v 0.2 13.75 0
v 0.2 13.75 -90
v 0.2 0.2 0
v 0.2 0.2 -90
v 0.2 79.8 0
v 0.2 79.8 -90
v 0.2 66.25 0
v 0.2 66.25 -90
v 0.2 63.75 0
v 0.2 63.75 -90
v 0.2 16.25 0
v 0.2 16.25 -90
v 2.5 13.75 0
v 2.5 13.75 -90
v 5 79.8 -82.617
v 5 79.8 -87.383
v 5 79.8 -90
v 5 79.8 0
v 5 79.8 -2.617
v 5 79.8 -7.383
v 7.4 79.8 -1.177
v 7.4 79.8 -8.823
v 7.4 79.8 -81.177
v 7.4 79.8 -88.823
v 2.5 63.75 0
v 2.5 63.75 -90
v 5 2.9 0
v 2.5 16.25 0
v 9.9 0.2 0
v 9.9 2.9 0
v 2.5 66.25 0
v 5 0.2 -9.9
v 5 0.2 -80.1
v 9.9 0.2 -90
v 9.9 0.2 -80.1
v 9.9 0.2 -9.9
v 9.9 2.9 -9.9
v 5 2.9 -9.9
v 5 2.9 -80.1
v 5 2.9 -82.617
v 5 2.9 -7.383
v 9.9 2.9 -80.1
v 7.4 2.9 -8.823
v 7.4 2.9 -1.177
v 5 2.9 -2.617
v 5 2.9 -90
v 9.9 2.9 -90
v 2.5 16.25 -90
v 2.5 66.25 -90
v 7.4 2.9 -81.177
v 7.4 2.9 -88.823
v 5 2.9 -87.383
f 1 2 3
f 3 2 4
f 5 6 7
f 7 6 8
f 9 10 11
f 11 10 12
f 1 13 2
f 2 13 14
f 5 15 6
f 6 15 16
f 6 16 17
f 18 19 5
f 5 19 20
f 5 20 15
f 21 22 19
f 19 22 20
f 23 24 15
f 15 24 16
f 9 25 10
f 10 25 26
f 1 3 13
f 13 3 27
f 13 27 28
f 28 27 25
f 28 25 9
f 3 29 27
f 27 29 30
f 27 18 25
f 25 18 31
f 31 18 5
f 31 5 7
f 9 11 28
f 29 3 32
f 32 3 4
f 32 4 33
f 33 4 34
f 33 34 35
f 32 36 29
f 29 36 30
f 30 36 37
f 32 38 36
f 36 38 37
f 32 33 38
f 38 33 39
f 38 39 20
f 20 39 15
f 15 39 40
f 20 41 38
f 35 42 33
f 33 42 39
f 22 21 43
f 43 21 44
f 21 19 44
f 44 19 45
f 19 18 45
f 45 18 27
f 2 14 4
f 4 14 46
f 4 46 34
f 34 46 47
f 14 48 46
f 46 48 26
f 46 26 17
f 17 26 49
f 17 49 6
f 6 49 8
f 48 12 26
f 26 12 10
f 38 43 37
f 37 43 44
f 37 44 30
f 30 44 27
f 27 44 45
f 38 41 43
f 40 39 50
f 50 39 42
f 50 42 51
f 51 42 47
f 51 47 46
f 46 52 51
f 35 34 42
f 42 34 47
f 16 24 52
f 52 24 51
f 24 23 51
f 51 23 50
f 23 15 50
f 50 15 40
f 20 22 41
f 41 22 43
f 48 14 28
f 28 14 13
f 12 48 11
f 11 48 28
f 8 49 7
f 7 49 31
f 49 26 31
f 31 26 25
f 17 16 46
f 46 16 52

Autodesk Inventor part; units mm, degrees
ref_plane "YZ Plane" through (0, 0, 0) normal (1, 0, 0) x (0, 1, 0)
ref_plane "XZ Plane" through (0, 0, 0) normal (0, 1, 0) x (-1, 0, 0)
ref_plane "XY Plane" through (0, 0, 0) normal (0, 0, 1) x (1, 0, 0)
sketch "Sketch1" plane through (0, 0, 0) normal (0, 1, 0) x (-1, 0, 0)
  line L0 (0, 0) -> (0, -90)
  line L1 (0, -90) -> (-5, -90)
  line L2 (-5, -90) -> (-5, -87.5)
  line L3 (-5, -82.5) -> (-5, -7.5)
  line L4 (-5, -7.5) -> (-7.5, -9)
  line L5 (-7.5, -9) -> (-7.5, -1)
  line L6 (-7.5, -1) -> (-5, -2.5)
  line L7 (-5, -2.5) -> (-5, 0)
  line L8 (-5, 0) -> (0, 0)
  line L9 (-5, -7.5) -> (-5, -2.5) construction
  line L10 (-5, -82.5) -> (-5, -87.5) construction
  line L11 (0, -45) -> (-5, -45) construction
  line L12 (-5, -82.5) -> (-7.5, -81)
  line L13 (-7.5, -81) -> (-7.5, -89)
  line L14 (-7.5, -89) -> (-5, -87.5)
  line L15 (0, 0) -> (-10, 0)
  line L16 (-10, 0) -> (-10, -10)
  line L17 (-10, -10) -> (0, -10)
  line L18 (0, -10) -> (0, 0)
  line L19 (0, -90) -> (-10, -90)
  line L20 (-10, -90) -> (-10, -80)
  line L21 (-10, -80) -> (0, -80)
  line L22 (0, -80) -> (0, -90)
  point P0 (-7.5, -5)
  point P1 (-5, -5)
  point P2 (-5, -85)
  point P3 (0, -80)
  point P4 (-5, 0)
  point P5 (0, -10)
  point P6 (-5, -80)
  dimension "d0" = 90
  dimension "d1" = 5
  dimension "d2" = 8
  dimension "d3" = 5
  dimension "d4" = 5
  dimension "d5" = 2.5
  dimension "d6" = 5
  dimension "d9" = 5
  dimension "d10" = 10
  dimension "d11" = 10
  dimension "d12" = 10
  dimension "d13" = 10
extrude "Extrusion1" add sketch "Sketch1" along normal blind 3 contours L0 L17 L3 L4 L5 L6 L7 L8 | L7 L6 L5 L4 L3 L17 L16 L15 | L0 L1 L2 L14 L13 L12 L3 L21 | L3 L12 L13 L14 L2 L19 L20 L21
extrude "Extrusion2" add sketch "Sketch1" along normal blind 80 contours L0 L17 L3 L4 L5 L6 L7 L8 | L0 L21 L3 L17 | L0 L1 L2 L14 L13 L12 L3 L21
sketch "Sketch2" plane through (0, 0, 0) normal (0, 0, 1) x (1, 0, 0)
  line L0 (0, 0) -> (0, 80) projected
  line L1 (0, 13.75) -> (2.5, 13.75)
  line L2 (2.5, 13.75) -> (2.5, 16.25)
  line L3 (2.5, 16.25) -> (0, 16.25)
  line L4 (0, 16.25) -> (0, 13.75)
  line L5 (0, 66.25) -> (2.5, 66.25)
  line L6 (2.5, 66.25) -> (2.5, 63.75)
  line L7 (2.5, 63.75) -> (0, 63.75)
  line L8 (0, 63.75) -> (0, 66.25)
  line L9 (0, 80) -> (5, 80) projected
  line L10 (0, 0) -> (10, 0) projected
  point P0 (2.5, 65)
  point P1 (2.5, 15)
  point P2 (0, 16.25)
  dimension "d18" = 15
  dimension "d19" = 2.5
  dimension "d20" = 2.5
  dimension "d21" = 15
  dimension "d22" = 2.5
extrude "Extrusion3" cut sketch "Sketch2" against normal up to surface (90 mm away)
sketch "Sketch3" plane through (0, 3, 0) normal (0, 1, 0) x (1, 0, 0)
  line L0 (5, 82.5) -> (5, 80) projected
  line L1 (5, 80) -> (10, 80) projected
  line L2 (10, 80) -> (10, 90) projected
  line L3 (10, 90) -> (5, 90) projected
  line L4 (5, 90) -> (5, 87.5) projected
  line L5 (5, 87.5) -> (7.5, 89) projected
  line L6 (7.5, 89) -> (7.5, 81) projected
  line L7 (7.5, 81) -> (5, 82.5) projected
  line L8 (5, 10) -> (5, 7.5) projected
  line L9 (5, 7.5) -> (7.5, 9) projected
  line L10 (7.5, 9) -> (7.5, 1) projected
  line L11 (7.5, 1) -> (5, 2.5) projected
  line L12 (5, 2.5) -> (5, 0) projected
  line L13 (5, 0) -> (10, 0) projected
  line L14 (10, 0) -> (10, 10) projected
  line L15 (10, 10) -> (5, 10) projected
  point P0 (0, 0)
extrude "Extrusion4" cut sketch "Sketch3" against normal blind 0.1
sketch "Sketch4" plane through (0, 80, 0) normal (0, 1, 0) x (1, 0, 0)
  line L0 (7.5, 89) -> (5, 87.5) projected
  line L1 (7.5, 81) -> (7.5, 89) projected
  line L2 (5, 82.5) -> (7.5, 81) projected
  line L3 (7.5, 9) -> (5, 7.5) projected
  line L4 (7.5, 1) -> (7.5, 9) projected
  line L5 (5, 2.5) -> (7.5, 1) projected
  line L6 (5, 7.3834) -> (7.4, 8.8234)
  line L7 (7.4, 8.8234) -> (7.4, 1.1766)
  line L8 (7.4, 1.1766) -> (5, 2.6166)
  line L9 (5, 82.6166) -> (7.4, 81.1766)
  line L10 (7.4, 81.1766) -> (7.4, 88.8234)
  line L11 (7.4, 88.8234) -> (5, 87.3834)
  line L12 (5, 7.5) -> (5, 82.5) projected
  line L13 (5, 87.5) -> (5, 82.5)
  line L14 (5, 7.5) -> (5, 2.5)
  point P0 (0, 0)
  dimension "d27" = 0.1
  dimension "d28" = 0.1
  dimension "d29" = 0.1
  dimension "d30" = 0.1
  dimension "d33" = 0.1
  dimension "d34" = 0.1
extrude "Extrusion5" cut sketch "Sketch4" against normal up to surface (77.1 mm away) contours L1 L2 L13 L9 L10 L11 L0 | L3 L4 L5 L14 L8 L7 L6
sketch "Sketch5" plane through (10, 0, -80) normal (1, 0, 0) x (0, 0, -1)
  line L0 (-70, 2.9) -> (-80, 2.9) projected
  line L1 (-80, 0) -> (-80, 2.9) projected
  line L2 (-80, 0) -> (-70, 0) projected
  line L3 (-70, 0) -> (-70, 2.9) projected
  line L4 (10, 2.9) -> (0, 2.9) projected
  line L5 (0, 0) -> (0, 2.9) projected
  line L6 (0, 0) -> (10, 0) projected
  line L7 (10, 0) -> (10, 2.9) projected
extrude "Extrusion6" cut sketch "Sketch5" against normal blind 0.1
sketch "Sketch6" plane through (9.9, 0, -80) normal (1, 0, 0) x (0, 0, -1)
  line L0 (10, 0) -> (-80, 0) projected
  line L1 (-71.1766, 2.9) -> (-78.8234, 2.9) projected
  line L2 (0.1, 0) -> (-70.1, 0)
  line L3 (-70.1, 0) -> (-70.1, 2.9)
  line L4 (-70.1, 2.9) -> (0.1, 2.9)
  line L5 (0.1, 2.9) -> (0.1, 0)
  line L6 (-70, 2.9) -> (-70, 0) construction
  line L7 (0, 0) -> (0, 2.9) construction
  point P0 (-70.1, 0)
  dimension "tol" = 0.1
  dimension "d38" = 0.1
extrude "Extrusion7" cut sketch "Sketch6" against normal up to surface (4.9 mm away)
sketch "Sketch7" plane through (0, 80, 0) normal (0, 1, 0) x (1, 0, 0)
  line L0 (5, 87.3834) -> (5, 90) projected
  line L1 (5, 90) -> (0, 90) projected
  line L2 (0, 90) -> (0, 0) projected
  line L3 (0, 0) -> (5, 0) projected
  line L4 (5, 0) -> (5, 2.6166) projected
  line L5 (5, 2.6166) -> (7.4, 1.1766) projected
  line L6 (7.4, 1.1766) -> (7.4, 8.8234) projected
  line L7 (7.4, 8.8234) -> (5, 7.3834) projected
  line L8 (5, 7.3834) -> (5, 82.6166) projected
  line L9 (5, 82.6166) -> (7.4, 81.1766) projected
  line L10 (7.4, 81.1766) -> (7.4, 88.8234) projected
  line L11 (7.4, 88.8234) -> (5, 87.3834) projected
extrude "Extrusion8" cut sketch "Sketch7" against normal blind 0.2
sketch "Sketch8" plane through (0, 0, 0) normal (0, -1, 0) x (1, 0, 0)
  line L0 (5, -9.9) -> (9.9, -9.9) projected
  line L1 (9.9, -9.9) -> (9.9, 0) projected
  line L2 (0, 0) -> (9.9, 0) projected
  line L3 (0, -90) -> (0, 0) projected
  line L4 (9.9, -90) -> (0, -90) projected
  line L5 (9.9, -90) -> (9.9, -80.1) projected
  line L6 (9.9, -80.1) -> (5, -80.1) projected
  line L7 (5, -80.1) -> (5, -9.9) projected
extrude "Extrusion9" cut sketch "Sketch8" against normal blind 0.2
sketch "Sketch9" plane through (0, 16.25, 0) normal (-1, 0, 0) x (0, 0, 1)
  line L0 (-90, 0) -> (0, 0) projected
  line L1 (0, 0) -> (0, 47.5) projected
  line L2 (0, 47.5) -> (-90, 47.5) projected
  line L3 (-90, 0) -> (-90, 47.5) projected
  line L4 (0, 63.55) -> (-90, 63.55) projected
  line L5 (-90, 50) -> (-90, 63.55) projected
  line L6 (-90, 50) -> (0, 50) projected
  line L7 (0, 50) -> (0, 63.55) projected
  line L8 (-90, -16.05) -> (0, -16.05) projected
  line L9 (0, -16.05) -> (0, -2.5) projected
  line L10 (0, -2.5) -> (-90, -2.5) projected
  line L11 (-90, -16.05) -> (-90, -2.5) projected
  point P0 (0, -16.25)
extrude "Extrusion10" cut sketch "Sketch9" against normal blind 0.2
equation "\"d25\" = tol"
equation "\"d27\" = tol"
equation "\"d28\" = tol"
equation "\"d29\" = tol"
equation "\"d30\" = tol"
equation "\"d33\" = tol"
equation "\"d34\" = tol"
equation "\"d35\" = tol"
equation "\"d38\" = tol"
equation "\"d41\" = 2 * tol"
equation "\"d43\" = 2 * tol"
equation "\"d45\" = 2 * tol"
properties part number "drawerside"
